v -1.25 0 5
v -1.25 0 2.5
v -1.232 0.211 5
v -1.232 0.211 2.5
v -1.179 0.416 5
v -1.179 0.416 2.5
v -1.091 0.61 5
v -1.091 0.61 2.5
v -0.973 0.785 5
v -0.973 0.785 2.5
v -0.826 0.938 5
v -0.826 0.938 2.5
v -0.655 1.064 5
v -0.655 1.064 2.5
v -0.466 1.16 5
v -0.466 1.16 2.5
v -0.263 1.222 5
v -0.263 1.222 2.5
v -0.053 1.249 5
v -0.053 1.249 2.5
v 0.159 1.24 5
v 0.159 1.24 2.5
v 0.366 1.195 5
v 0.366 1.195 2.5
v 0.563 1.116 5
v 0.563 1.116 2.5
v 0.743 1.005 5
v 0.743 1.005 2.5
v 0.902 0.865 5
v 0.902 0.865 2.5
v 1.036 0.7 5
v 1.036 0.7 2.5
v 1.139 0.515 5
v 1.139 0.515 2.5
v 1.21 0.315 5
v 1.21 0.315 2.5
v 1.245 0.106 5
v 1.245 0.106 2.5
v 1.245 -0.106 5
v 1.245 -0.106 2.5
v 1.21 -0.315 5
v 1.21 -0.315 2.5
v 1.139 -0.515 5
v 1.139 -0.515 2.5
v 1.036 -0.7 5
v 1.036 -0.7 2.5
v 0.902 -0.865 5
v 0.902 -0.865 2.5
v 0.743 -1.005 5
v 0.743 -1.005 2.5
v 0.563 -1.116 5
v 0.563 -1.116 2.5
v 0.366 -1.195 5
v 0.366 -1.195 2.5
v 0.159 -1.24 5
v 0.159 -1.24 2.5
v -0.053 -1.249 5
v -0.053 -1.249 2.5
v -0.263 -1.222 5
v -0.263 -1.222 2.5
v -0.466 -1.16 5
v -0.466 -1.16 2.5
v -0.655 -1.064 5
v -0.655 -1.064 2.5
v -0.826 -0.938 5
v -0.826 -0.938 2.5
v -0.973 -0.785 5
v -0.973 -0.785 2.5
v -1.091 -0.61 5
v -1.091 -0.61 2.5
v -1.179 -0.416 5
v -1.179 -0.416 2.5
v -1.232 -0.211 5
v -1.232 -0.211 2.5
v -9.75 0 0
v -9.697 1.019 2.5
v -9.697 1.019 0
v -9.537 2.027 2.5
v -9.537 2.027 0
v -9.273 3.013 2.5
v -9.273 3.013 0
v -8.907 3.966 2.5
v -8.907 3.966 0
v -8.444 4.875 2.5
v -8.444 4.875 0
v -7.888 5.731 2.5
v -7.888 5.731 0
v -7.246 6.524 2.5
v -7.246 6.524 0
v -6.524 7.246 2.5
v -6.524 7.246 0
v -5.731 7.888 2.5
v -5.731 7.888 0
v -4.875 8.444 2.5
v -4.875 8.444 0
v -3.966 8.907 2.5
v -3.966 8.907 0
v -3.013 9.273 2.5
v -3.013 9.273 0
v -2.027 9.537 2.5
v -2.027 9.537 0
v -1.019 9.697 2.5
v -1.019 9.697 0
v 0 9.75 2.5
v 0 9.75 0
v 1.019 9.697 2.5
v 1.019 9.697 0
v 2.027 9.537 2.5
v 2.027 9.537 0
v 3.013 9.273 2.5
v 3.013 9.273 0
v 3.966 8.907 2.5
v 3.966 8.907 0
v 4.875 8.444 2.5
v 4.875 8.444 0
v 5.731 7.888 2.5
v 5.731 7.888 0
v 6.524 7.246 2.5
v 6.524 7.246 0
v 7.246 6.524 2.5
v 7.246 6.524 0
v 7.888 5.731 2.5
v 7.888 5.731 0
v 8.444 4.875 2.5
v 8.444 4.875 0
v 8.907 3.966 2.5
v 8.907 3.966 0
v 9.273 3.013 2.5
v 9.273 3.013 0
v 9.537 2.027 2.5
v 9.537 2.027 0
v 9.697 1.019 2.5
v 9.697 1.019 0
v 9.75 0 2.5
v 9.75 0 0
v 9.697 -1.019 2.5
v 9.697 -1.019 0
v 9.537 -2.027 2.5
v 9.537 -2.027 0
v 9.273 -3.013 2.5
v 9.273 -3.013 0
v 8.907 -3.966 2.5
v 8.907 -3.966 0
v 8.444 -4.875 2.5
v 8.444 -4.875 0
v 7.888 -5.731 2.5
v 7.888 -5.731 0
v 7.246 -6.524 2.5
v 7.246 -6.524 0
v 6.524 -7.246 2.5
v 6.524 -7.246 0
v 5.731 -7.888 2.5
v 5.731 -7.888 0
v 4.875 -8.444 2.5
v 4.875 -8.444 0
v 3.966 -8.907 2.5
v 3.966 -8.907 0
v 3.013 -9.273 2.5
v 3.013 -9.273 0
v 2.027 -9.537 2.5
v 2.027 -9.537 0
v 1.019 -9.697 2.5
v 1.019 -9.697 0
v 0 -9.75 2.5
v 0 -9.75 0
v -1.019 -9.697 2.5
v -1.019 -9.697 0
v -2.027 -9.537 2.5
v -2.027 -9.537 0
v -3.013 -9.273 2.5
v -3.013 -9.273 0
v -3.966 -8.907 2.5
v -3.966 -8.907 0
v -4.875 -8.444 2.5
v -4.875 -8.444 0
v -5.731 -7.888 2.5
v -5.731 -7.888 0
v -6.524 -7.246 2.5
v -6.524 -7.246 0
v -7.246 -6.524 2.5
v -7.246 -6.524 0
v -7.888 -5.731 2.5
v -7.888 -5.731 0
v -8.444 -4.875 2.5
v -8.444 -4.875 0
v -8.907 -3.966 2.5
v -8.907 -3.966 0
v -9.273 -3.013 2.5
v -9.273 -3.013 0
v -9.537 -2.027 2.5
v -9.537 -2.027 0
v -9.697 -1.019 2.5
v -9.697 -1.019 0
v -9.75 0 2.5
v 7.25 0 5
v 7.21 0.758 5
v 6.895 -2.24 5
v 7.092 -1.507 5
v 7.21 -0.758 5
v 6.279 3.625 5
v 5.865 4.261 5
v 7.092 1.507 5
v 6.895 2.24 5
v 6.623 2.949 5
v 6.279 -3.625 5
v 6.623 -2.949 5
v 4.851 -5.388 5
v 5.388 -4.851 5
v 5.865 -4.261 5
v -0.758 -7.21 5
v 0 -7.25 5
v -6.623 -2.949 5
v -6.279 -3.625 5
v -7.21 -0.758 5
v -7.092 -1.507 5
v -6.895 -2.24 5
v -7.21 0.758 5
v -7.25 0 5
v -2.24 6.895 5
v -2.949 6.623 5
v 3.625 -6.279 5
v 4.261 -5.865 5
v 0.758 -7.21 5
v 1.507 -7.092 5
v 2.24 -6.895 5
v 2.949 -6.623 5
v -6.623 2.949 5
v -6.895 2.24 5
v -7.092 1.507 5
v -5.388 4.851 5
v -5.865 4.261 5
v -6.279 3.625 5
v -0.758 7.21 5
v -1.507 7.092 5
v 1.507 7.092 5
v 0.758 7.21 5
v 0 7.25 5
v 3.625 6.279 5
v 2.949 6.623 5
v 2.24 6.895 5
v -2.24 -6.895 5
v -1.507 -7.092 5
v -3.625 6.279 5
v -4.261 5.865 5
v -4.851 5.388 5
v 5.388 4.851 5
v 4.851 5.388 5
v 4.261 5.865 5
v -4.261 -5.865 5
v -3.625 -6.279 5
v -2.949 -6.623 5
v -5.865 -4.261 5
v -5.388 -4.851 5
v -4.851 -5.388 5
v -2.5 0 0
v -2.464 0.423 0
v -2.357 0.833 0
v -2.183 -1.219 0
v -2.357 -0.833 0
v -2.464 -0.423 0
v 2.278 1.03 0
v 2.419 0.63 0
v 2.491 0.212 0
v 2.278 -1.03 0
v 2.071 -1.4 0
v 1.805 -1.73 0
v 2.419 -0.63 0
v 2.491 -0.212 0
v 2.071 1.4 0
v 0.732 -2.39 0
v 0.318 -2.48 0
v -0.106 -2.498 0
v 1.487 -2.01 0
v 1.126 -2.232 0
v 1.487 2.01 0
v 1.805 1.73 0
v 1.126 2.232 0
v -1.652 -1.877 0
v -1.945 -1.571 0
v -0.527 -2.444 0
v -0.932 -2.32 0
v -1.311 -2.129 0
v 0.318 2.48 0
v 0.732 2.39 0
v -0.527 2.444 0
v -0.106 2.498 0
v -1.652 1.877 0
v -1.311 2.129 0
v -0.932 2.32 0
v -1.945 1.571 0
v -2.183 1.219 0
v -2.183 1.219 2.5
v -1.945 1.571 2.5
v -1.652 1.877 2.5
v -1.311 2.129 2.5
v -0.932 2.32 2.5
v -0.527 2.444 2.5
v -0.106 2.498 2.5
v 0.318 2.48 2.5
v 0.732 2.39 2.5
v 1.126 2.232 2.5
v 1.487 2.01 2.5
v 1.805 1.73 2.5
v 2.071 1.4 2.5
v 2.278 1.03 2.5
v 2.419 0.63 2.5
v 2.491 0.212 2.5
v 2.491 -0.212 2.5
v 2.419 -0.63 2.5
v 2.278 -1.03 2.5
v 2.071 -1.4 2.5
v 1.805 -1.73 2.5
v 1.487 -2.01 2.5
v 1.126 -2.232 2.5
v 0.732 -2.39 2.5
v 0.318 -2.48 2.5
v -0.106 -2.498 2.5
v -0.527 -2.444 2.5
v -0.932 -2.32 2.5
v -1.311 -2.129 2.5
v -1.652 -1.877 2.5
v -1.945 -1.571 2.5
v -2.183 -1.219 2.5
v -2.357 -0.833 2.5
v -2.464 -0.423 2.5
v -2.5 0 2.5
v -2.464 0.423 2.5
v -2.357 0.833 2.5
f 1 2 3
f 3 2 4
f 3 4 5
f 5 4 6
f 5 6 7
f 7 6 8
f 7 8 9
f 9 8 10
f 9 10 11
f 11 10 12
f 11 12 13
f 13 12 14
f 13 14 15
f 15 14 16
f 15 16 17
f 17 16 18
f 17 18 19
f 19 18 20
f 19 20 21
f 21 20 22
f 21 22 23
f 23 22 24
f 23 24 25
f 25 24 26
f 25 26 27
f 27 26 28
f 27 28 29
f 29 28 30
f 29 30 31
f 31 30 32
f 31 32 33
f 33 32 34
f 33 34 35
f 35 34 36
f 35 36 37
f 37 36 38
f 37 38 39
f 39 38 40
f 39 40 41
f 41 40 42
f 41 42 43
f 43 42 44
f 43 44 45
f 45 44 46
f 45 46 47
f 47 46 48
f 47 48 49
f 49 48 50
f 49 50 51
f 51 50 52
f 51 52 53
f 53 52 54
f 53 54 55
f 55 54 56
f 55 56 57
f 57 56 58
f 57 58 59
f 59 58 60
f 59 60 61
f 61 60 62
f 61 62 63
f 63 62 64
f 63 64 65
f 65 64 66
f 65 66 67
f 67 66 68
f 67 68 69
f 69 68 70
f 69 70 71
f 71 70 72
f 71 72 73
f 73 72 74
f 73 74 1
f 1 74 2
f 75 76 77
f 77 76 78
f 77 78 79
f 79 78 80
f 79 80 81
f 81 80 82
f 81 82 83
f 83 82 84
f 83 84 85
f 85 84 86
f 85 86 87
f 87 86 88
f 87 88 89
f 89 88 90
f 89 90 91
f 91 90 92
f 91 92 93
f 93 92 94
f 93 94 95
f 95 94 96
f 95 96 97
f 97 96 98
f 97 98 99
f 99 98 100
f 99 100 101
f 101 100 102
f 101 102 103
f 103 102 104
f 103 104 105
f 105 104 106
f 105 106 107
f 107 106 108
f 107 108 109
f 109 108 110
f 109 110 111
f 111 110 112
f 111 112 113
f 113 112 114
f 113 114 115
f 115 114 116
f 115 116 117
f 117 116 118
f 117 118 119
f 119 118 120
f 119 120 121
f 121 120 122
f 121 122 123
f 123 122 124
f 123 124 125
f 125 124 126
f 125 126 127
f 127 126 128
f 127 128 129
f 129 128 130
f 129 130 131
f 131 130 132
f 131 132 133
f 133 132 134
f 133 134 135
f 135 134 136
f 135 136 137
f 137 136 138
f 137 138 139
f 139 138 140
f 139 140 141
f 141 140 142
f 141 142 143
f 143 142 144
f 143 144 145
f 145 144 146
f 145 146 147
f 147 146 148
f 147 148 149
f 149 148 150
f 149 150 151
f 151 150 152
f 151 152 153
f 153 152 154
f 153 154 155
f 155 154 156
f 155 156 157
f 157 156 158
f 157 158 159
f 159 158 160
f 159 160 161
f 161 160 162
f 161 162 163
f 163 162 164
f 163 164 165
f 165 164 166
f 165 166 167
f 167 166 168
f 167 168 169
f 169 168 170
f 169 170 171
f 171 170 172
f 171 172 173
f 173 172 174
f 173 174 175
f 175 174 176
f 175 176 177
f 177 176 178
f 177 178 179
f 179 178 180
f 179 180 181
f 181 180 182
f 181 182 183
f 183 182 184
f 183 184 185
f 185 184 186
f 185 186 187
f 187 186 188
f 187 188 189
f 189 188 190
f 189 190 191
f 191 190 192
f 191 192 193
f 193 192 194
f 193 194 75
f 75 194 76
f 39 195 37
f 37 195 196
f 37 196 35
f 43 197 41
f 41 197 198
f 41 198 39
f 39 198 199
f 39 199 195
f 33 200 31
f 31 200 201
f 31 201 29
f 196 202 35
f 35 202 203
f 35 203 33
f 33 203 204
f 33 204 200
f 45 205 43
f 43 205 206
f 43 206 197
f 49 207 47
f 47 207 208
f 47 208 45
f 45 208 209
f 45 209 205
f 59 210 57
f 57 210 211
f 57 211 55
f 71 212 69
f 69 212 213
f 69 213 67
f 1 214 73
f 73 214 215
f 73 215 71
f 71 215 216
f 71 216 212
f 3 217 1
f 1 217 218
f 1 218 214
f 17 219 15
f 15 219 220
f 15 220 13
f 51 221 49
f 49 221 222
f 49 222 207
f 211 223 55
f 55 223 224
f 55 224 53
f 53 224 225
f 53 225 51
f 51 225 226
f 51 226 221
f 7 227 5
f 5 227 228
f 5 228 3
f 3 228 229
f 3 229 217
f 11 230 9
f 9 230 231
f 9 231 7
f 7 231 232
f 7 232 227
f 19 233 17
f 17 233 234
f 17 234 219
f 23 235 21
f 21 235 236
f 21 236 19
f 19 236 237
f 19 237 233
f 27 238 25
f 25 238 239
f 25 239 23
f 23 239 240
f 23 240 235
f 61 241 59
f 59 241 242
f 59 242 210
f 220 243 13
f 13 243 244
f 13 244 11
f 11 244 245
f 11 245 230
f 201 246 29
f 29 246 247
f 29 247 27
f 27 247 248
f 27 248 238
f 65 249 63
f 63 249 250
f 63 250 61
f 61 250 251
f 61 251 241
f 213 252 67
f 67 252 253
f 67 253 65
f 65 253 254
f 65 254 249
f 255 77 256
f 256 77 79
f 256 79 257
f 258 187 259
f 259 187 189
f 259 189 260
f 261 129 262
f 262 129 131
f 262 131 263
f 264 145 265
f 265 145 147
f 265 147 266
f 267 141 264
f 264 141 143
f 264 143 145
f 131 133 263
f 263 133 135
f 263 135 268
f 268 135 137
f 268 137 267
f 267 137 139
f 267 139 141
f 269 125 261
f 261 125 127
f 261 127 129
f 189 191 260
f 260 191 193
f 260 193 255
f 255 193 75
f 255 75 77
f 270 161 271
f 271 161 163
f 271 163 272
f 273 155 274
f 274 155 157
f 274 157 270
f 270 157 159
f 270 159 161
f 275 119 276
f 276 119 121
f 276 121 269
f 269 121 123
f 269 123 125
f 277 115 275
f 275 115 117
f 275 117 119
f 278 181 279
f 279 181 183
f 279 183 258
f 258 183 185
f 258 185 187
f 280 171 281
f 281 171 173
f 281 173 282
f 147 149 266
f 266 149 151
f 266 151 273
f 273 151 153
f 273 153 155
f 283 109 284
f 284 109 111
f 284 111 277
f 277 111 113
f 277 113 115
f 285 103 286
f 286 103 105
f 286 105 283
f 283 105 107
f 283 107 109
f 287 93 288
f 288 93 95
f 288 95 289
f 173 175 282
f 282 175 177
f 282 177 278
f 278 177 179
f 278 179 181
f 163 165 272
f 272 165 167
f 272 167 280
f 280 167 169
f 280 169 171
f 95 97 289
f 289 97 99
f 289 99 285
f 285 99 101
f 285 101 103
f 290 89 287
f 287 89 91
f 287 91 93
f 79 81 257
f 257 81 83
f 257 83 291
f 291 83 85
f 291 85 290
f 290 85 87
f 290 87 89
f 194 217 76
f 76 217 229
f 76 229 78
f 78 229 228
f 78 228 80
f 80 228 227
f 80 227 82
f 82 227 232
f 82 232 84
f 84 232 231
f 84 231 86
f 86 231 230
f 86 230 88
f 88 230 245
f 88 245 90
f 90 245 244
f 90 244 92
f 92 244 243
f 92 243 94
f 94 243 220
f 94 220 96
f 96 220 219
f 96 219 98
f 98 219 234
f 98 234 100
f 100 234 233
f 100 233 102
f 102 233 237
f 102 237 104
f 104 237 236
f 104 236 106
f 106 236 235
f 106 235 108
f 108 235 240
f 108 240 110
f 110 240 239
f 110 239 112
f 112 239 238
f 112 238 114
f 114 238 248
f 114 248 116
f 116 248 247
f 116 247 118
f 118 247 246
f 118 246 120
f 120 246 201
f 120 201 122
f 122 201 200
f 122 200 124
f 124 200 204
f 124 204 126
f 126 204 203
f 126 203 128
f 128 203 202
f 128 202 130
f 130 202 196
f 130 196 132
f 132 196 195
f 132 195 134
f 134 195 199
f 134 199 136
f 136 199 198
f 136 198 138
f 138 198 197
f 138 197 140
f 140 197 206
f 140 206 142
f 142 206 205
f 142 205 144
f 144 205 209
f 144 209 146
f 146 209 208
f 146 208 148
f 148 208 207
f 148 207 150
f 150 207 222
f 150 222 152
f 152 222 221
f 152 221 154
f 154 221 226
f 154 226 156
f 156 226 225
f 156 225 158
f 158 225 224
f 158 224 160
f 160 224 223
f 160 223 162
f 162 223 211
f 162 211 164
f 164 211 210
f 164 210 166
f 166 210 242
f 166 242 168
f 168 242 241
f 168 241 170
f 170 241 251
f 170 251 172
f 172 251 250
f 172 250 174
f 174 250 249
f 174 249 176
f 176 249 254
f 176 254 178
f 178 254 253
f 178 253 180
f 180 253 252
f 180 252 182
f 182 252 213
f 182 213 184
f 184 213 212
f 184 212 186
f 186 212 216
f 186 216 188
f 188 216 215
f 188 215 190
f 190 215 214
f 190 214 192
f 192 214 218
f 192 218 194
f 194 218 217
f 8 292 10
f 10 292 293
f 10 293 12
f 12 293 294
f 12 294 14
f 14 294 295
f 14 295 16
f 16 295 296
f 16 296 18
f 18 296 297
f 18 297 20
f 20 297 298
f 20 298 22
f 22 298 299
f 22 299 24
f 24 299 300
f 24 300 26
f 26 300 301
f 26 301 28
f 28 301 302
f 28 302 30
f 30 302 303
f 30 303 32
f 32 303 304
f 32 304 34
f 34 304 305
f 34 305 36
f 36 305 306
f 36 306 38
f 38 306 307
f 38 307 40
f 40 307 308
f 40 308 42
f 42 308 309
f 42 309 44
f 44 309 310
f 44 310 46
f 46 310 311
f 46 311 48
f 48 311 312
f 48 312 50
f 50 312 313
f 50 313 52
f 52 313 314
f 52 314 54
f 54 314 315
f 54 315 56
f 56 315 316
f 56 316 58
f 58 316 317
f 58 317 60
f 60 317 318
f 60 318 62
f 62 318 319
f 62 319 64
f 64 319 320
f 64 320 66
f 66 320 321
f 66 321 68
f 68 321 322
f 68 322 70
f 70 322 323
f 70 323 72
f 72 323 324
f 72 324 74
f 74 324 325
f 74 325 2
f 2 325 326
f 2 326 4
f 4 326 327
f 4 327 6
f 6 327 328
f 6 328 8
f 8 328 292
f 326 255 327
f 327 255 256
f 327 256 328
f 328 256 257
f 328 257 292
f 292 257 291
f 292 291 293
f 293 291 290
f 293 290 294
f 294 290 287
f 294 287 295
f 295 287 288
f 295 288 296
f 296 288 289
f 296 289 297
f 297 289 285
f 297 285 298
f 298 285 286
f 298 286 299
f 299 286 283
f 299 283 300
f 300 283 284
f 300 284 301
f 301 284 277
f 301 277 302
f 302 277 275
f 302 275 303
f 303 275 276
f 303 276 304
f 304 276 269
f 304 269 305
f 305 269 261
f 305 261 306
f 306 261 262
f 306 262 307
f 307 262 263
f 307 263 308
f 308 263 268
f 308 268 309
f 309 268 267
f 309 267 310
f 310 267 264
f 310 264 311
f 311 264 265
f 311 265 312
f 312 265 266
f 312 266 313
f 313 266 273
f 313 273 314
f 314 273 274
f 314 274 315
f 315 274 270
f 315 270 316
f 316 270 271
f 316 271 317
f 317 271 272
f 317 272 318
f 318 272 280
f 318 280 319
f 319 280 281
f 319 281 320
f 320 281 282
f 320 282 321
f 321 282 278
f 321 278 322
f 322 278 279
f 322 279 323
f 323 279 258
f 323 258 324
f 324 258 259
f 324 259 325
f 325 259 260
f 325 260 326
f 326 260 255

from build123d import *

# Parameters (mm, degrees)
SKETCH1_R           = 9.75
BOSS_EXTRUDE1_DEPTH = 5
SKETCH2_R           = 1.25
CUT_EXTRUDE1_DEPTH  = 5
CHAMFER1_SIZE       = 2.5
SKETCH4_R           = 2.5
CUT_EXTRUDE3_DEPTH  = 2.5


with BuildPart() as part:
    # Sketch1 → Boss-Extrude1 (new body)
    with BuildSketch(Plane.XY):
        Circle(SKETCH1_R)
    extrude(amount=BOSS_EXTRUDE1_DEPTH)

    # Sketch2 → Cut-Extrude1 (cut)
    with BuildSketch(Plane(origin=(0, 0, 0), x_dir=(-1, 0, 0), z_dir=(0, 0, -1))):
        Circle(SKETCH2_R)
    extrude(amount=-CUT_EXTRUDE1_DEPTH, mode=Mode.SUBTRACT)

    # Chamfer1
    chamfer1_edges = [part.edges().sort_by_distance(p)[0] for p in [
        (-9.75, 0, 5),
    ]]
    chamfer(chamfer1_edges, length=CHAMFER1_SIZE)

    # Sketch4 → Cut-Extrude3 (cut)
    with BuildSketch(Plane(origin=(0, 0, 0), x_dir=(-1, 0, 0), z_dir=(0, 0, -1))):
        Circle(SKETCH4_R)
    extrude(amount=-CUT_EXTRUDE3_DEPTH, mode=Mode.SUBTRACT)


solid = part.part
